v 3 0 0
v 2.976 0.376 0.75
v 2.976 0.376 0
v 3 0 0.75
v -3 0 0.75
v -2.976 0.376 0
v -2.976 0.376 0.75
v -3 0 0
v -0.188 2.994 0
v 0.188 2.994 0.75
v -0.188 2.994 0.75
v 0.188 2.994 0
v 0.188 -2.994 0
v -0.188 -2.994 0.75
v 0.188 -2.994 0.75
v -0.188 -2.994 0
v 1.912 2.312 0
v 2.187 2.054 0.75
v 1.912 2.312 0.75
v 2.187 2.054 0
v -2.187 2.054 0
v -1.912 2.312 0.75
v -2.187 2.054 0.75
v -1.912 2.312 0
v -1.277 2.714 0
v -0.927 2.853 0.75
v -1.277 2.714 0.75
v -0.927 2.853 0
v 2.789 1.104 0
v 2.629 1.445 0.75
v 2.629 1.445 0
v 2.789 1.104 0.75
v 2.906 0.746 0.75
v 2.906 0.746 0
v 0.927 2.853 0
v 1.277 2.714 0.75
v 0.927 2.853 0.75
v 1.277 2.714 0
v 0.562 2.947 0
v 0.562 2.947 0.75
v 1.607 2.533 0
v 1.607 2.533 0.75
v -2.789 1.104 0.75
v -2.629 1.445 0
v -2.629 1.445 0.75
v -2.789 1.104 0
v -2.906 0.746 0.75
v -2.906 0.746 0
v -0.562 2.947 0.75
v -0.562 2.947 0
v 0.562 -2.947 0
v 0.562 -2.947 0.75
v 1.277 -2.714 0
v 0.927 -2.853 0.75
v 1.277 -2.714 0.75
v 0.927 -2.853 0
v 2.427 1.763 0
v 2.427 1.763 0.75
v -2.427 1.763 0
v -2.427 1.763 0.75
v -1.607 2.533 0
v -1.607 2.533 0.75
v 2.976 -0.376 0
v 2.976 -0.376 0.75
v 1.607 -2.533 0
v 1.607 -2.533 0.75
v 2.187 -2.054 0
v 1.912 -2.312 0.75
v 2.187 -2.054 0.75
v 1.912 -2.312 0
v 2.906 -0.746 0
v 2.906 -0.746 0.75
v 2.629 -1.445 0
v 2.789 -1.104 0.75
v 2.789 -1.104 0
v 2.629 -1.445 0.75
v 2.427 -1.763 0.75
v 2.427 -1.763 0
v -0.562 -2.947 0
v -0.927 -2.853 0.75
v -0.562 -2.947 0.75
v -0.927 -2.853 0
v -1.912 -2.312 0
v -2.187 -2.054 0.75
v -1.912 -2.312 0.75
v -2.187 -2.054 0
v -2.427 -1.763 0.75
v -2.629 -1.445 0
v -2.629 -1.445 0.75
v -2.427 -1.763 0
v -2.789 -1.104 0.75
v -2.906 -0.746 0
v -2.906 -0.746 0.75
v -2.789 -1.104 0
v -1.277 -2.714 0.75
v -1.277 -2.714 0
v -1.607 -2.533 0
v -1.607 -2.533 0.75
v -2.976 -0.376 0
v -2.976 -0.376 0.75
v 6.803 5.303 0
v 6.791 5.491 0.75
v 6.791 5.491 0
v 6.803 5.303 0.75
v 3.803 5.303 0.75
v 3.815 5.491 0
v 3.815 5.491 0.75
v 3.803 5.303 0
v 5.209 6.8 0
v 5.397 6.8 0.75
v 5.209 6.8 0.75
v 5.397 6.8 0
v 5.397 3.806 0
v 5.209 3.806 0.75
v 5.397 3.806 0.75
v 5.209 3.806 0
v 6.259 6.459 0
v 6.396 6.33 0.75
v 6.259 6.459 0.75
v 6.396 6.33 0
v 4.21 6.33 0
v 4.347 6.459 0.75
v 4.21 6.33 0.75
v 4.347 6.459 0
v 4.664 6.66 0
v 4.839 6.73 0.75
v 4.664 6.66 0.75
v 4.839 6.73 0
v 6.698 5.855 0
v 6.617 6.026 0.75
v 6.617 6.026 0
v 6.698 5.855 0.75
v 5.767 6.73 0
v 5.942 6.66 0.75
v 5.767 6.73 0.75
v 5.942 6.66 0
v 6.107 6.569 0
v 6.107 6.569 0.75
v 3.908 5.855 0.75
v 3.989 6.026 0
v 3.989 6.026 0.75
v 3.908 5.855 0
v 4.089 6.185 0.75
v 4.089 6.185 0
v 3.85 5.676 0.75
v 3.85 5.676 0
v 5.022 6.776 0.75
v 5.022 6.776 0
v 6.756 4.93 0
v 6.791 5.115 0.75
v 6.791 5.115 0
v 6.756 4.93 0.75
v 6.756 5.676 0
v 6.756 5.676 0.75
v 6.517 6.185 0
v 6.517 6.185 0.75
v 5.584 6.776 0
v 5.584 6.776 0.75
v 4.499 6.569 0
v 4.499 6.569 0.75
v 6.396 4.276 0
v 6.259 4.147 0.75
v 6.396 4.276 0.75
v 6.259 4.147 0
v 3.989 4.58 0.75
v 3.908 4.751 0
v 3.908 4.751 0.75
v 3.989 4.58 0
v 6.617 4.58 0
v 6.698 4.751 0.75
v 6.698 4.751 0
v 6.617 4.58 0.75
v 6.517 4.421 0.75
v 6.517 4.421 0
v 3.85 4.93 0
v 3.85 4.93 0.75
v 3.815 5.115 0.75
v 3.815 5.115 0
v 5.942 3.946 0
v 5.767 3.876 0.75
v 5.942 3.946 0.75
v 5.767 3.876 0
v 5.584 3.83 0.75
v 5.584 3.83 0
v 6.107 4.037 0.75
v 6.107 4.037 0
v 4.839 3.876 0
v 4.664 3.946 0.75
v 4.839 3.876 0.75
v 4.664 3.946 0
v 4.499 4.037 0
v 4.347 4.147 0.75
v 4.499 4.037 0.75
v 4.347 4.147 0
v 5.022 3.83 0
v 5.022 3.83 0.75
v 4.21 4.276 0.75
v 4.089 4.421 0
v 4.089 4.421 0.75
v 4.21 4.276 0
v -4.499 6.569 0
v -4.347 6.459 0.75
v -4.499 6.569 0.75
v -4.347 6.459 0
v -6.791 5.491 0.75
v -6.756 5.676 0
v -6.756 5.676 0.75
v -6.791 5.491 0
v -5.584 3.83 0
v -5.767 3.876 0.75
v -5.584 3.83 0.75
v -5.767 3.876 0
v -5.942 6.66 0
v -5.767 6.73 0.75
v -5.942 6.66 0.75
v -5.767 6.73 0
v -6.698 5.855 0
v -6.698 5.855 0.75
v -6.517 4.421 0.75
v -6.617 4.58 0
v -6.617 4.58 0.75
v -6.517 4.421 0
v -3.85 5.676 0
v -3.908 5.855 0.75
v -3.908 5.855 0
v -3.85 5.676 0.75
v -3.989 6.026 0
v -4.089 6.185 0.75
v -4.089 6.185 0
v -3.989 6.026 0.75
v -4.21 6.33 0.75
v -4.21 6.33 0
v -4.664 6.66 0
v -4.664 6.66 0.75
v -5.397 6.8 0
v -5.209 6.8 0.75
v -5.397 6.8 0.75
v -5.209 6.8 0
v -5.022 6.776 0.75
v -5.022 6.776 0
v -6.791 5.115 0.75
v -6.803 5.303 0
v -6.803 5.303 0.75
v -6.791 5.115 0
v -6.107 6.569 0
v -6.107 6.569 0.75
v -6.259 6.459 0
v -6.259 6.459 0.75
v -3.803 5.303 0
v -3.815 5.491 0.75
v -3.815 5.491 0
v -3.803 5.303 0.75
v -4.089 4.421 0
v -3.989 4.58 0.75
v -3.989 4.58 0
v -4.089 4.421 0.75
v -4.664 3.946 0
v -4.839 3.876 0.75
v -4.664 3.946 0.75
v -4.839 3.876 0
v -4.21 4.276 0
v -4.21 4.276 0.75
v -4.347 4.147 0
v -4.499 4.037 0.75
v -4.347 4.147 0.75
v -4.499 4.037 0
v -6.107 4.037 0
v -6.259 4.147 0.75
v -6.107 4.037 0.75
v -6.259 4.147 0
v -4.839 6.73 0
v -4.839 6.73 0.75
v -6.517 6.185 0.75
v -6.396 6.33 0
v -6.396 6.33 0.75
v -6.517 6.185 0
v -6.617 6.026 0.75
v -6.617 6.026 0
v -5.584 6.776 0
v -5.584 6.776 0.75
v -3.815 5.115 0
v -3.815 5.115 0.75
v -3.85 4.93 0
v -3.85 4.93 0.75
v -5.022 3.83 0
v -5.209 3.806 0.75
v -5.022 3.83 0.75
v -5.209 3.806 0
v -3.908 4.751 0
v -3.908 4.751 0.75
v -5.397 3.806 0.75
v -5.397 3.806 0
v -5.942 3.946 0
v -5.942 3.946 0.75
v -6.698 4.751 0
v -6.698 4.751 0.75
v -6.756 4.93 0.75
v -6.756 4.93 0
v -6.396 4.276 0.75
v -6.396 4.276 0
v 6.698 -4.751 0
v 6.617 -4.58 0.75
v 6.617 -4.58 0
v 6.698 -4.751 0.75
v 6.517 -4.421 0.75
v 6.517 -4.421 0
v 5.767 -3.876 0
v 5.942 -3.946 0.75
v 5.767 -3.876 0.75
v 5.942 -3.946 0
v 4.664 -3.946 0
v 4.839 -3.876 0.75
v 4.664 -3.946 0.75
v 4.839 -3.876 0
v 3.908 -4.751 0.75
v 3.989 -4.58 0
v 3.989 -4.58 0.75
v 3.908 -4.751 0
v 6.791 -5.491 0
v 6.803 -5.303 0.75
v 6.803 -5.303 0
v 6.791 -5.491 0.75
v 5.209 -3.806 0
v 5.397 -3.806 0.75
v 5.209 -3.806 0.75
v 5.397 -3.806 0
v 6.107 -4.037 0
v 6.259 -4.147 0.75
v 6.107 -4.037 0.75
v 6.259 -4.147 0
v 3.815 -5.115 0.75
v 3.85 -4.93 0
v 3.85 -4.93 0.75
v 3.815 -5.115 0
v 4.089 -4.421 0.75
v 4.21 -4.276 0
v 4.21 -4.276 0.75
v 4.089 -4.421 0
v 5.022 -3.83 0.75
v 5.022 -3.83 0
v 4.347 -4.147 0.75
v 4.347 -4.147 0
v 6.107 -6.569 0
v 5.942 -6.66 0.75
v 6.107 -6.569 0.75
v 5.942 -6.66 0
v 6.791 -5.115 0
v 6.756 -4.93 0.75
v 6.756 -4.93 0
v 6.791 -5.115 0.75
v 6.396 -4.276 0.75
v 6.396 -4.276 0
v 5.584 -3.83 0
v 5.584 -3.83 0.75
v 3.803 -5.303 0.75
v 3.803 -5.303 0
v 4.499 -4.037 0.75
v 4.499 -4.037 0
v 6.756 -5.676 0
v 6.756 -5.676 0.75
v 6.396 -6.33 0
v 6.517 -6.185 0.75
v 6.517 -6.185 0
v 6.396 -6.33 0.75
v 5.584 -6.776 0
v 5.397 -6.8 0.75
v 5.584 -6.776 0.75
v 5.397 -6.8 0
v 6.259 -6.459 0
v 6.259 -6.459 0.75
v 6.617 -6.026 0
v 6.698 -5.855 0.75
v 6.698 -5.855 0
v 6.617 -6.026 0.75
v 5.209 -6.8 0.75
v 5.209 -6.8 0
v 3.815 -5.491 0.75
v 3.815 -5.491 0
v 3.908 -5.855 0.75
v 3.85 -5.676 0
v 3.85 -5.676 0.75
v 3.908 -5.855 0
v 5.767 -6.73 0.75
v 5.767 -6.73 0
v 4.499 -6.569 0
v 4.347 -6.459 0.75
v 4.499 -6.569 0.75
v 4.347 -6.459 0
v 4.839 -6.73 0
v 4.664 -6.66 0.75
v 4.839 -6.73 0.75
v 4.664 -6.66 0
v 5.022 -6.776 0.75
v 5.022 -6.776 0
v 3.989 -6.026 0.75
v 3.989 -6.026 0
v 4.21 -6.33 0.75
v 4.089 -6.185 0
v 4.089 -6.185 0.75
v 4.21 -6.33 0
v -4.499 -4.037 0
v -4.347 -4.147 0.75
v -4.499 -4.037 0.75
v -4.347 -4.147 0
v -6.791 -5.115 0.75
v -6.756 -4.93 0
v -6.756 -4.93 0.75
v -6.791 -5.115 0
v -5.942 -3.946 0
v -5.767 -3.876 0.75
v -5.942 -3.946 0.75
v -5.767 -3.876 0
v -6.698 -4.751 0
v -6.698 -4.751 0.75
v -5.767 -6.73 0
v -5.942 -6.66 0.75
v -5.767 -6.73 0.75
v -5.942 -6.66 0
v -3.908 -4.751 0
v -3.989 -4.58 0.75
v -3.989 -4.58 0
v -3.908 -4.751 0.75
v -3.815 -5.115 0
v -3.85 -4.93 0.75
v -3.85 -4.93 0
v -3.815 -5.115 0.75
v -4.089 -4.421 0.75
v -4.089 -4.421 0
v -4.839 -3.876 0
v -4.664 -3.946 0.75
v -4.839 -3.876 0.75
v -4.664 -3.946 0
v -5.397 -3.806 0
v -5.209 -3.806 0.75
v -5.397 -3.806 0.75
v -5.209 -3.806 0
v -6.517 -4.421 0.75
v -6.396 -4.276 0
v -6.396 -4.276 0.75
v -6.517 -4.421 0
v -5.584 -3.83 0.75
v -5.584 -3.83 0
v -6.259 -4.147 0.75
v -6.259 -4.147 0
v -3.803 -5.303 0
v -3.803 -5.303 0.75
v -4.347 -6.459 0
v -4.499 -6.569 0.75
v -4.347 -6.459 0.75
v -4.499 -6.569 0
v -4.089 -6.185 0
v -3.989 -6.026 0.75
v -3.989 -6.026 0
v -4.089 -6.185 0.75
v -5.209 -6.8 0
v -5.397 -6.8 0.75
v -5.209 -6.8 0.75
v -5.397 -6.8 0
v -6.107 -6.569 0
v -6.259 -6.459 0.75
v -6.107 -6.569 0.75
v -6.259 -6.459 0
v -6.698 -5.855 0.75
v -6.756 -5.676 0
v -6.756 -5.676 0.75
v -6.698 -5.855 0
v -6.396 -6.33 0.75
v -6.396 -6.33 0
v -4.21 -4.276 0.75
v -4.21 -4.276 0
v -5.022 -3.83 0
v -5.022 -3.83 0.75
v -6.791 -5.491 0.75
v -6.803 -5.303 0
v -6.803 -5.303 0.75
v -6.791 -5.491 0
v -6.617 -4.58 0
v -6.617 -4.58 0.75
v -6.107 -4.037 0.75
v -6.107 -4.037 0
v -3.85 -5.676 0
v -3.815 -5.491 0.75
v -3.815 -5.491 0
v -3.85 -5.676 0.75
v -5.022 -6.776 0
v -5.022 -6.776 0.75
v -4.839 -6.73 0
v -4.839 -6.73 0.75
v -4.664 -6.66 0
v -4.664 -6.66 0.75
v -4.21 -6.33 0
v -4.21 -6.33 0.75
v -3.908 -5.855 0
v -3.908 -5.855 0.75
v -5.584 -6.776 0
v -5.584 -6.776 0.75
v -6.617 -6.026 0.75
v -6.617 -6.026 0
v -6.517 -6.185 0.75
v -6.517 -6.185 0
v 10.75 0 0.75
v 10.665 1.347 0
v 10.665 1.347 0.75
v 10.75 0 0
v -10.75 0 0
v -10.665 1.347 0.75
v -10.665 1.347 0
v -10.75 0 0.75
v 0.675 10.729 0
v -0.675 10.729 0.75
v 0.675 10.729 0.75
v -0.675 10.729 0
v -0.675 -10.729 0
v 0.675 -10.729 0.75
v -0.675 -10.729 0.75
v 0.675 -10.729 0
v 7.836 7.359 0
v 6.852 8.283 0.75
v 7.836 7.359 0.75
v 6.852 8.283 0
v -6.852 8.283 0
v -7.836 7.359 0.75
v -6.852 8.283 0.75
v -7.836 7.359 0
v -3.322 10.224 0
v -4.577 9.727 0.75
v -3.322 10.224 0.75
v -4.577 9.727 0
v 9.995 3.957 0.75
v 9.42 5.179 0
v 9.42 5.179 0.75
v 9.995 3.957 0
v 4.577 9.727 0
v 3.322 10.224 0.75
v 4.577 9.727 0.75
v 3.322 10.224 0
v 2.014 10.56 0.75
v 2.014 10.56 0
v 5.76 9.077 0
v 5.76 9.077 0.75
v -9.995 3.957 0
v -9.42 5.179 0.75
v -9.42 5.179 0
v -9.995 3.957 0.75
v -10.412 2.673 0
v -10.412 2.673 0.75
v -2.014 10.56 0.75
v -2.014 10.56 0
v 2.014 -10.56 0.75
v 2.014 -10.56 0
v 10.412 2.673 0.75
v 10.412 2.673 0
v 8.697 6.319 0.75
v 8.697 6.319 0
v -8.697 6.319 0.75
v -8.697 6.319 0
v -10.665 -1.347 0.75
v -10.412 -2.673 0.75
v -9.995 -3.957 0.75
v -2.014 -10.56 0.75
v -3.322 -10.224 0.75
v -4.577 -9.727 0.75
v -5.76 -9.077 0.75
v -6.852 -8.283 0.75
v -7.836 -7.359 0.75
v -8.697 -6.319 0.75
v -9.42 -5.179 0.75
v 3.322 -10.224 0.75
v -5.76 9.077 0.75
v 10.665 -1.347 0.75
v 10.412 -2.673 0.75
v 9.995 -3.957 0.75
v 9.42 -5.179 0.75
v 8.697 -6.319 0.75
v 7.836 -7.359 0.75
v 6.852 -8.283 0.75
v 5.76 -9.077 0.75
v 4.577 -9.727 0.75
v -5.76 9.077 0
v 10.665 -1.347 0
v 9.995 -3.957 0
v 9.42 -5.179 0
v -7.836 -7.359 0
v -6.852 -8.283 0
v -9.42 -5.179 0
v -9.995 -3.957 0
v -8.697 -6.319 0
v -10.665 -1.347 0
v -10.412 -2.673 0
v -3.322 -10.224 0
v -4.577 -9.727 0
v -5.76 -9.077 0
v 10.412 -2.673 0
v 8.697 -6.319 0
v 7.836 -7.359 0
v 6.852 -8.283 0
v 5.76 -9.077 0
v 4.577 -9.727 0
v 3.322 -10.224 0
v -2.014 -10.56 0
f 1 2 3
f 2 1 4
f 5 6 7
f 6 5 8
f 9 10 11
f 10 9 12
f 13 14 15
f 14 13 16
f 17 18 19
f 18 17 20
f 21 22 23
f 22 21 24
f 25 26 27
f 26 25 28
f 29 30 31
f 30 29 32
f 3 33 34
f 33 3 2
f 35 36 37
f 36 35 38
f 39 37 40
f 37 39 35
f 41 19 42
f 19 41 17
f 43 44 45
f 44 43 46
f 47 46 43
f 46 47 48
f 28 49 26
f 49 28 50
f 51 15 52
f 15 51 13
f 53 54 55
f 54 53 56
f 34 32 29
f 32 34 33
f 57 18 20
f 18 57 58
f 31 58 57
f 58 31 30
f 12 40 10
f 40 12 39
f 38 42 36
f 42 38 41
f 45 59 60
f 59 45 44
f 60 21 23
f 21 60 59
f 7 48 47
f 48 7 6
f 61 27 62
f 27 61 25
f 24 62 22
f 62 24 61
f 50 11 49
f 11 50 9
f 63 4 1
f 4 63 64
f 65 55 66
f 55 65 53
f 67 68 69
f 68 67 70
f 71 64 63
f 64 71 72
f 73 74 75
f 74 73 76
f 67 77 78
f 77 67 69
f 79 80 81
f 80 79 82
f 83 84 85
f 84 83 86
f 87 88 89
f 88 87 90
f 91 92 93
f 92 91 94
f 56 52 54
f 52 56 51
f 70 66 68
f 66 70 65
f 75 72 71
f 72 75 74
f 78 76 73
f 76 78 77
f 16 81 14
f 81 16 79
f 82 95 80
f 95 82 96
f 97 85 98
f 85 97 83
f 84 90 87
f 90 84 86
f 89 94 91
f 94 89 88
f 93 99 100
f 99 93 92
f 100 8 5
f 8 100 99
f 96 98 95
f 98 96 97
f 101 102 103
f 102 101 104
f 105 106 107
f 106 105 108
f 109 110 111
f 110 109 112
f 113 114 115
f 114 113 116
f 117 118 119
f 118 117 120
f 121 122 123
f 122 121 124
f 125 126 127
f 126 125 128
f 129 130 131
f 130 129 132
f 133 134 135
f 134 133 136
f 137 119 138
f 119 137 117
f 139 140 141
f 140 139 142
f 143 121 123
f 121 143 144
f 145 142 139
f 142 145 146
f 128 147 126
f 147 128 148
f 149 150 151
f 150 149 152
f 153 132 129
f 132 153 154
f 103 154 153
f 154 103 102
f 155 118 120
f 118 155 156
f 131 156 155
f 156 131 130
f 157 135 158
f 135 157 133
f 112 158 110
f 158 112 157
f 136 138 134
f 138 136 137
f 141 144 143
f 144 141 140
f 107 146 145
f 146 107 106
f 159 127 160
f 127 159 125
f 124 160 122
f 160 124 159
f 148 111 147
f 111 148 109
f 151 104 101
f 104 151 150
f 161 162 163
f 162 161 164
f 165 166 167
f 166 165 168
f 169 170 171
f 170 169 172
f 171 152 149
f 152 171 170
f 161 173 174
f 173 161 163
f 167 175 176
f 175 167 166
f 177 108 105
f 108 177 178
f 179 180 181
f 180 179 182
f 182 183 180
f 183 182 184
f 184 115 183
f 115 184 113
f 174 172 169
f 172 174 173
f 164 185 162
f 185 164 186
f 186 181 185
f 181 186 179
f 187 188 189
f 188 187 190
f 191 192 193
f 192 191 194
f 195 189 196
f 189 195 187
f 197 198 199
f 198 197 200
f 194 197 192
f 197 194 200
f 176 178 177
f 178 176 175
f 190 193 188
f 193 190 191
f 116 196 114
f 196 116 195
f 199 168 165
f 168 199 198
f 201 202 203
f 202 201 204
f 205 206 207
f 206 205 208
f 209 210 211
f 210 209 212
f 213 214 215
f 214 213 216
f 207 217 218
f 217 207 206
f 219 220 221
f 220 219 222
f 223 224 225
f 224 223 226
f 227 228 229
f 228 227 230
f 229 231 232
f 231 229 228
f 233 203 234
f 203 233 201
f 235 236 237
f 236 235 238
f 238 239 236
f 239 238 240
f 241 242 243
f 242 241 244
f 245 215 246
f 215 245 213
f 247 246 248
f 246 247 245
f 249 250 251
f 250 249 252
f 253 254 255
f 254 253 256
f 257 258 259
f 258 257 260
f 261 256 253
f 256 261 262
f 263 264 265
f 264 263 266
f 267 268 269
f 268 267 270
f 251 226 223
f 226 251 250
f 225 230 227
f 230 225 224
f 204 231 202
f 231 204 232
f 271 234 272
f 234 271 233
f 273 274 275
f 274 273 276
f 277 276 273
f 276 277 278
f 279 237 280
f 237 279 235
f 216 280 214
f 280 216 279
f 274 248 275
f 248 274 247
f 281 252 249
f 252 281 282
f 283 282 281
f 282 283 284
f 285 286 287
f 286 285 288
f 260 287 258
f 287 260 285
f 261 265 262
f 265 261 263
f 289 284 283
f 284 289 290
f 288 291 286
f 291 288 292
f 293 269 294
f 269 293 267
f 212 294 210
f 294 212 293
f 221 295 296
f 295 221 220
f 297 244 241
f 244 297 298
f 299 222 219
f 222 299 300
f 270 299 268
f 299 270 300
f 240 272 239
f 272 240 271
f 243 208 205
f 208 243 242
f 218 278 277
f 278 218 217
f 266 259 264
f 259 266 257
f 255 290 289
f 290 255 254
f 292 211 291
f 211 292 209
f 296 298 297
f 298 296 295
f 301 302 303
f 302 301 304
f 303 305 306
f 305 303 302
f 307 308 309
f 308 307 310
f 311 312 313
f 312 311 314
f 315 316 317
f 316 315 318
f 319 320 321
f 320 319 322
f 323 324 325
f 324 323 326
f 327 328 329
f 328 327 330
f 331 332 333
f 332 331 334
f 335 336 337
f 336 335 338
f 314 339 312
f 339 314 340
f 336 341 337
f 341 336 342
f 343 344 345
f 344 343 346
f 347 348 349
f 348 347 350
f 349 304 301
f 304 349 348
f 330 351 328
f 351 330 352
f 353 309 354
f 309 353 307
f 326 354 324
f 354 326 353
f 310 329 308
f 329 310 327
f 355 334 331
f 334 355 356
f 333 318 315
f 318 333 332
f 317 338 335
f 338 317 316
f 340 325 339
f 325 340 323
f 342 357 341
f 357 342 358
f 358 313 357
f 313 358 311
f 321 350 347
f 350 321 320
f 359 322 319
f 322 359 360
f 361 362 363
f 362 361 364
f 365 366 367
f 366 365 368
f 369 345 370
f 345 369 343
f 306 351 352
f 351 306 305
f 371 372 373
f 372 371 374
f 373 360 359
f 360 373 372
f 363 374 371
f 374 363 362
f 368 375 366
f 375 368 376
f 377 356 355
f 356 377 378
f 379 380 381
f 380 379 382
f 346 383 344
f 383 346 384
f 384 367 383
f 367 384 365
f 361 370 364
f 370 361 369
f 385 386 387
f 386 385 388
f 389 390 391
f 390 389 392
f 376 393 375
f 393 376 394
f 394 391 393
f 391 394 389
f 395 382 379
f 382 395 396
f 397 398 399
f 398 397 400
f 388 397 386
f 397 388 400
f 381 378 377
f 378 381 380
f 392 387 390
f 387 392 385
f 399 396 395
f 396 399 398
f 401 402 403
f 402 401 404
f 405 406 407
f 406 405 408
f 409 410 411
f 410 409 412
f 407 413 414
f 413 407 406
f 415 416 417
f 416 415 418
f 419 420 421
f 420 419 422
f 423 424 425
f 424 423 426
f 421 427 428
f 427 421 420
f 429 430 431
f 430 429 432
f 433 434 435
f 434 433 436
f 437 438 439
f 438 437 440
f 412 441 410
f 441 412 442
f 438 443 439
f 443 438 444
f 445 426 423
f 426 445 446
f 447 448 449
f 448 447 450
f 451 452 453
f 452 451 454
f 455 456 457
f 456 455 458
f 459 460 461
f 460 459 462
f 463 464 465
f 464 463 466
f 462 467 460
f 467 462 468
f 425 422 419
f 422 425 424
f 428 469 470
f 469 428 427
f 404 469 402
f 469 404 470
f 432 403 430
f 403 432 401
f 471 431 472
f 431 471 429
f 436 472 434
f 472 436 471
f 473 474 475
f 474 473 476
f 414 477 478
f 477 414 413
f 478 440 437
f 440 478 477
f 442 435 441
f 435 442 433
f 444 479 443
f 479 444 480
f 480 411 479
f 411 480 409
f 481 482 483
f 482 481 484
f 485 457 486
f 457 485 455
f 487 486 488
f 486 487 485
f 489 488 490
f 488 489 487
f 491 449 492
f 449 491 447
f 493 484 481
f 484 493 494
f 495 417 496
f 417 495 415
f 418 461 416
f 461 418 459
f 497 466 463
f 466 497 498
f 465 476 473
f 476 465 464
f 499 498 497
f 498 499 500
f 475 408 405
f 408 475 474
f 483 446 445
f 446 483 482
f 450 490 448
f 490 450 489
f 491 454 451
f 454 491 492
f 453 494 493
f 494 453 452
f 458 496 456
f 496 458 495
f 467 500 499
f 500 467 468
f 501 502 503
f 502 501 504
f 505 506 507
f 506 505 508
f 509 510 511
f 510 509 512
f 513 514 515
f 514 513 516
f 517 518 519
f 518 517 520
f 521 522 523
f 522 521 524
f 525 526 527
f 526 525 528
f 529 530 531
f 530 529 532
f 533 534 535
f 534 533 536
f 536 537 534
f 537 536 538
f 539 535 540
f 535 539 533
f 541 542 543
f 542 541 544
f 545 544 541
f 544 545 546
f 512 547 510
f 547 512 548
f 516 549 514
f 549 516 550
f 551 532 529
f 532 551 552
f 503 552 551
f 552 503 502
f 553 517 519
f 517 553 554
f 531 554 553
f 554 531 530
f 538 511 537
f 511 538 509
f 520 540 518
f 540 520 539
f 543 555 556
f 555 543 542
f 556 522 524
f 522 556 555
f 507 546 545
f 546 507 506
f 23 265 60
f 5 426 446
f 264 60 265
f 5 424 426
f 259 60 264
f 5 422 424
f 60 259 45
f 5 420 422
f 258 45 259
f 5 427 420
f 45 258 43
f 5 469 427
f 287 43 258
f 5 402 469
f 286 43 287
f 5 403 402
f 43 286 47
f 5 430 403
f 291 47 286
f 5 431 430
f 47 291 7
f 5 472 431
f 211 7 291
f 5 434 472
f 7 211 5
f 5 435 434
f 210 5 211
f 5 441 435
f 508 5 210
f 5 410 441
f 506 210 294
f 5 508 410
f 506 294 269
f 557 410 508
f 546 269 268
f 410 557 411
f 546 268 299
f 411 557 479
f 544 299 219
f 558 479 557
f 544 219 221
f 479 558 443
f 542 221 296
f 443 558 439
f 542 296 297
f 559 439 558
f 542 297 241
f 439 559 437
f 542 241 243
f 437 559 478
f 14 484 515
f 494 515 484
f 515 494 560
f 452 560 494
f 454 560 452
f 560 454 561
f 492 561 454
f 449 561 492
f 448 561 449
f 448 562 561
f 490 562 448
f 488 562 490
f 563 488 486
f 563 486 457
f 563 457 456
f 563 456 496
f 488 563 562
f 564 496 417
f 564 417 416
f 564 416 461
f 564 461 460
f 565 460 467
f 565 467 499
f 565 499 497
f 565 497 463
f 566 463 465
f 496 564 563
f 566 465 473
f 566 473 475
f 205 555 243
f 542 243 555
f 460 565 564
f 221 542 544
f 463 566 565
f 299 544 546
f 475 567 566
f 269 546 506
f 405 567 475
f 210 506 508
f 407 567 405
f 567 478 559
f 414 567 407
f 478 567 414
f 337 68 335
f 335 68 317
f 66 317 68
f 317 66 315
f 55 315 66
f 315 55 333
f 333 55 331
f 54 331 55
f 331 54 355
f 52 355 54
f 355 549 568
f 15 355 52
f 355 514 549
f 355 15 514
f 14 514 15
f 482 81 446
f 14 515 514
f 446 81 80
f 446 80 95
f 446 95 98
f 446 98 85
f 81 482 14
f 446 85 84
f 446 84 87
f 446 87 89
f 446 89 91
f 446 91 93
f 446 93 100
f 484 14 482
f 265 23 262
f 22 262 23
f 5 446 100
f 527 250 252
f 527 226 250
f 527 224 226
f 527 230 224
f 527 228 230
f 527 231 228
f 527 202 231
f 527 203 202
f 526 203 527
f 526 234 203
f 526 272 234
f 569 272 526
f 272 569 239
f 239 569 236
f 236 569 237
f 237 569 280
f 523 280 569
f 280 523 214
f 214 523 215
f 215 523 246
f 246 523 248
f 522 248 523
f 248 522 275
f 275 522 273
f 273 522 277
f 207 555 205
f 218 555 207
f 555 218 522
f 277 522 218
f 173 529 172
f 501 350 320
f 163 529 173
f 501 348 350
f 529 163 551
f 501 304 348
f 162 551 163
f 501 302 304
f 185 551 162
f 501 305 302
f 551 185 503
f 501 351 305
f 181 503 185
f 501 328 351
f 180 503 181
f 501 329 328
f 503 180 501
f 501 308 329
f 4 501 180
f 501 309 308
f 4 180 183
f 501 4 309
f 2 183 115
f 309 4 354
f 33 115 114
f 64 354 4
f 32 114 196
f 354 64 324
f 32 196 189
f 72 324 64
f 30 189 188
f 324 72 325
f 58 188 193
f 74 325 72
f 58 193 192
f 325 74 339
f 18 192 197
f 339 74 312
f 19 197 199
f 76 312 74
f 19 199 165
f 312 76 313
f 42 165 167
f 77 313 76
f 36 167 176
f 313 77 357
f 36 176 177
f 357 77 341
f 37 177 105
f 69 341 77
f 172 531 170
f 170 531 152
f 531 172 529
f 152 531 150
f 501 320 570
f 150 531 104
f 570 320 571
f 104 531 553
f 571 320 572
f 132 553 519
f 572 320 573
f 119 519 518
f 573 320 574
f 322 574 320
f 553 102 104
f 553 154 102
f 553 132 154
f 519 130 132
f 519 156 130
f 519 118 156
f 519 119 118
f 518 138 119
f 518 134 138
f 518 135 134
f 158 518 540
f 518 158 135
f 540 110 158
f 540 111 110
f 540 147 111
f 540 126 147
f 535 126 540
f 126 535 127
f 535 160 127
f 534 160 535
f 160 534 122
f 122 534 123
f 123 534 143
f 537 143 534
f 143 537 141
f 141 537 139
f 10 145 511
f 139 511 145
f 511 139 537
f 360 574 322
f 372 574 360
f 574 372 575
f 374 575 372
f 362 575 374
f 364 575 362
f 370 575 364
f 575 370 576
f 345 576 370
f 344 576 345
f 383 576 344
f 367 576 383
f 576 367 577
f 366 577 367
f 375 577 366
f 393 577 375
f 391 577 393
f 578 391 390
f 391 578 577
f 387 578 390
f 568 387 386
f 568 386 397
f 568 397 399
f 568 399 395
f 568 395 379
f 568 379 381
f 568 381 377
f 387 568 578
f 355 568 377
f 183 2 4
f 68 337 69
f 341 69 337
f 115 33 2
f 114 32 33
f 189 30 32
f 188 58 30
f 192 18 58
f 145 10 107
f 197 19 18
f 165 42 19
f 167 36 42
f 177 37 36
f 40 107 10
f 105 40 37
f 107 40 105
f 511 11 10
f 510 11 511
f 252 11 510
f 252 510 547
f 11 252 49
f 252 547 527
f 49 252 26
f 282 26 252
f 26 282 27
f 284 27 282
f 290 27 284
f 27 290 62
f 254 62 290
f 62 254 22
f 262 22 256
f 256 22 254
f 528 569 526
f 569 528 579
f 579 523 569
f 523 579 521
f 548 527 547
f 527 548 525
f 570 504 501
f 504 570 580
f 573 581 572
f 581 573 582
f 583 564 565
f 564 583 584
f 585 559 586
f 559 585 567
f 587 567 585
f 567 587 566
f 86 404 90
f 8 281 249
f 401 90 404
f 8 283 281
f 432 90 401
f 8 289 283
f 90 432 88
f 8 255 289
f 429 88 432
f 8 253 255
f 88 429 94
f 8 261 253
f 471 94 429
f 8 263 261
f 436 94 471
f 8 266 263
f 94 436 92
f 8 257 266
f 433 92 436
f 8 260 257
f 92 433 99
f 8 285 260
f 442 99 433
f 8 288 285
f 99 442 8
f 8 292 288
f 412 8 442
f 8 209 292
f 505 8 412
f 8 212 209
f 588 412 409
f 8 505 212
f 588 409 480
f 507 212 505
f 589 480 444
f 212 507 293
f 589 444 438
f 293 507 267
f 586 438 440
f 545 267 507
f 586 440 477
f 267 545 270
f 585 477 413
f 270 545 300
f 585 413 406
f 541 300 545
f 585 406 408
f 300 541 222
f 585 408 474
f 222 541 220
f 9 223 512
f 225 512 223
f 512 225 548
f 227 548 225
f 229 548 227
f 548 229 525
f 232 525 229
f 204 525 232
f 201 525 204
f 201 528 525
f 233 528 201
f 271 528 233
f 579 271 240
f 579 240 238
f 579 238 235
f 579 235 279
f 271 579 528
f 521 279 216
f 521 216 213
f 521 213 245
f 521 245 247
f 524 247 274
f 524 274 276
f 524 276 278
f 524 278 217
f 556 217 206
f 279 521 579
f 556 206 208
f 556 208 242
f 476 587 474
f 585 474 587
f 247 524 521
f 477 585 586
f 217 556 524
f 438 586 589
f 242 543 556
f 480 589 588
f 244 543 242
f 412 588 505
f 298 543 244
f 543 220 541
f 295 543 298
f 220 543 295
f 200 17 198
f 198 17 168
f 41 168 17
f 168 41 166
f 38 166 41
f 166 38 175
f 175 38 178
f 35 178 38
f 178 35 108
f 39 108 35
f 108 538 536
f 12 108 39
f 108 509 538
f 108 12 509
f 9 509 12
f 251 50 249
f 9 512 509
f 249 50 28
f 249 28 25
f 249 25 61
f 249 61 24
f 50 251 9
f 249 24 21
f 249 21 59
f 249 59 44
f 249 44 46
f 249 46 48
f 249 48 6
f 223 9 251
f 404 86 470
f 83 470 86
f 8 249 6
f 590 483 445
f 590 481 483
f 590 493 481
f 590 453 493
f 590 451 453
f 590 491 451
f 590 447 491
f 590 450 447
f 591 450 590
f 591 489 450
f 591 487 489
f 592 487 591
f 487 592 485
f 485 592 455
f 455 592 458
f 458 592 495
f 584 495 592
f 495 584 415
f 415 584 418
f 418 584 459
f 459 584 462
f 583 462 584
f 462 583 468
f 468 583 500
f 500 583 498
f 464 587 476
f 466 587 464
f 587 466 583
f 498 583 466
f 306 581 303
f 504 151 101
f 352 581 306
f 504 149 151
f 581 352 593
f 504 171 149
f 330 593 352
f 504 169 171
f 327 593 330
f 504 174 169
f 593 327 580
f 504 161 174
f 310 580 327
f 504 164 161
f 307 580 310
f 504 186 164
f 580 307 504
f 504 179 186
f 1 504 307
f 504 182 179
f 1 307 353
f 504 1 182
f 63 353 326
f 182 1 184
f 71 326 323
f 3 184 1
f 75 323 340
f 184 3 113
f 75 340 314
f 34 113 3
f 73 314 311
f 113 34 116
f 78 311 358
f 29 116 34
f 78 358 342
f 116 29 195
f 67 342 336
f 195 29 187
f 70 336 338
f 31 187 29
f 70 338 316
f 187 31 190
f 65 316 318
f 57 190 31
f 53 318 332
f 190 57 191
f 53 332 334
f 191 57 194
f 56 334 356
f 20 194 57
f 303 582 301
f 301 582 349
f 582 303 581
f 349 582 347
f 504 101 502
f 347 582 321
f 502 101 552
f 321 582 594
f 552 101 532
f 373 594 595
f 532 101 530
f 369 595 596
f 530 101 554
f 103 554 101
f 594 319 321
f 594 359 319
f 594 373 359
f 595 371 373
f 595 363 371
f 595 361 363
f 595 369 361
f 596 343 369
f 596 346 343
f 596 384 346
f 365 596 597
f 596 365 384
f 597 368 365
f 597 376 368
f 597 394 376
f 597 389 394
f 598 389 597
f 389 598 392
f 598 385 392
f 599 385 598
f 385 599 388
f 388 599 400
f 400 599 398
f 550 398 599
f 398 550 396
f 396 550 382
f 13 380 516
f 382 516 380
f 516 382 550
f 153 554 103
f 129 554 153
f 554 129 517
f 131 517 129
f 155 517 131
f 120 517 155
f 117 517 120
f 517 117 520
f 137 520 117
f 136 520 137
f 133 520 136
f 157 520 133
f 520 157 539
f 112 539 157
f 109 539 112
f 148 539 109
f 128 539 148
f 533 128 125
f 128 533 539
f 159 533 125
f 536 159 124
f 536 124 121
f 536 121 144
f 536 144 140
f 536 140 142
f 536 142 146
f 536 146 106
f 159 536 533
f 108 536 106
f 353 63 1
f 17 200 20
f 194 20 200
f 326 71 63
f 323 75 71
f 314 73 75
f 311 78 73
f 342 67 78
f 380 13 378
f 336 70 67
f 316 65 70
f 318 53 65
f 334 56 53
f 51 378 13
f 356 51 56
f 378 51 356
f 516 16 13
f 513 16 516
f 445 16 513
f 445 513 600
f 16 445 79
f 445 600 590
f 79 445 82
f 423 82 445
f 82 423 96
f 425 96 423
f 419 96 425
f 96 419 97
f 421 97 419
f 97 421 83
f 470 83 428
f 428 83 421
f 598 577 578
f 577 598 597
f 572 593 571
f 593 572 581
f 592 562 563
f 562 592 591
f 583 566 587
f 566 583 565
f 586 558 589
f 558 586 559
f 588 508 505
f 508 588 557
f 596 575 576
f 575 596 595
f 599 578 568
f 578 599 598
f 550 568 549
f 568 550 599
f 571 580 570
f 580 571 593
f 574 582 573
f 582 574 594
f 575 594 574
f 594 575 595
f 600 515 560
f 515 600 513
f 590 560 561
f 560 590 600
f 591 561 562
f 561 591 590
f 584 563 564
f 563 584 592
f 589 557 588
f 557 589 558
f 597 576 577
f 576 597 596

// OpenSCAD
$fn = 50;


difference() {
	union() {
		*color(alpha = 1.0000000000, c = "gray") {
			translate(v = [0, 7, 0]) {
				linear_extrude(height = 1) {
					text(font = "Arial:style=Bold", halign = "center", size = 4.5000000000, text = "COMMENT circle main", valign = "center");
				}
			}
		}
		cylinder(h = 0.7500000000, r = 10.7500000000);
	}
	union() {
		*color(alpha = 1.0000000000, c = "gray") {
			translate(v = [0, 7, 0]) {
				linear_extrude(height = 1) {
					text(font = "Arial:style=Bold", halign = "center", size = 4.5000000000, text = "COMMENT holes main", valign = "center");
				}
			}
		}
		translate(v = [0.0000000000, 0.0000000000, -50.0000000000]) {
			cylinder(h = 100, r = 3.0000000000);
		}
		translate(v = [0.0000000000, 0.0000000000, -50.0000000000]) {
			cylinder(h = 100, r = 3.0000000000);
		}
		translate(v = [0.0000000000, 0.0000000000, -50.0000000000]) {
			cylinder(h = 100, r = 3.0000000000);
		}
		translate(v = [0.0000000000, 0.0000000000, -50.0000000000]) {
			cylinder(h = 100, r = 1.5000000000);
		}
		translate(v = [0.0000000000, 0.0000000000, -50.0000000000]) {
			cylinder(h = 100, r = 1.5000000000);
		}
		translate(v = [0.0000000000, 0.0000000000, -50.0000000000]) {
			cylinder(h = 100, r = 1.5000000000);
		}
		#translate(v = [5.3030000000, 5.3030000000, -50.0000000000]) {
			cylinder(h = 100, r = 1.5000000000);
		}
		#translate(v = [-5.3030000000, 5.3030000000, -50.0000000000]) {
			cylinder(h = 100, r = 1.5000000000);
		}
		#translate(v = [5.3030000000, -5.3030000000, -50.0000000000]) {
			cylinder(h = 100, r = 1.5000000000);
		}
		#translate(v = [-5.3030000000, -5.3030000000, -50.0000000000]) {
			cylinder(h = 100, r = 1.5000000000);
		}
	}
}
